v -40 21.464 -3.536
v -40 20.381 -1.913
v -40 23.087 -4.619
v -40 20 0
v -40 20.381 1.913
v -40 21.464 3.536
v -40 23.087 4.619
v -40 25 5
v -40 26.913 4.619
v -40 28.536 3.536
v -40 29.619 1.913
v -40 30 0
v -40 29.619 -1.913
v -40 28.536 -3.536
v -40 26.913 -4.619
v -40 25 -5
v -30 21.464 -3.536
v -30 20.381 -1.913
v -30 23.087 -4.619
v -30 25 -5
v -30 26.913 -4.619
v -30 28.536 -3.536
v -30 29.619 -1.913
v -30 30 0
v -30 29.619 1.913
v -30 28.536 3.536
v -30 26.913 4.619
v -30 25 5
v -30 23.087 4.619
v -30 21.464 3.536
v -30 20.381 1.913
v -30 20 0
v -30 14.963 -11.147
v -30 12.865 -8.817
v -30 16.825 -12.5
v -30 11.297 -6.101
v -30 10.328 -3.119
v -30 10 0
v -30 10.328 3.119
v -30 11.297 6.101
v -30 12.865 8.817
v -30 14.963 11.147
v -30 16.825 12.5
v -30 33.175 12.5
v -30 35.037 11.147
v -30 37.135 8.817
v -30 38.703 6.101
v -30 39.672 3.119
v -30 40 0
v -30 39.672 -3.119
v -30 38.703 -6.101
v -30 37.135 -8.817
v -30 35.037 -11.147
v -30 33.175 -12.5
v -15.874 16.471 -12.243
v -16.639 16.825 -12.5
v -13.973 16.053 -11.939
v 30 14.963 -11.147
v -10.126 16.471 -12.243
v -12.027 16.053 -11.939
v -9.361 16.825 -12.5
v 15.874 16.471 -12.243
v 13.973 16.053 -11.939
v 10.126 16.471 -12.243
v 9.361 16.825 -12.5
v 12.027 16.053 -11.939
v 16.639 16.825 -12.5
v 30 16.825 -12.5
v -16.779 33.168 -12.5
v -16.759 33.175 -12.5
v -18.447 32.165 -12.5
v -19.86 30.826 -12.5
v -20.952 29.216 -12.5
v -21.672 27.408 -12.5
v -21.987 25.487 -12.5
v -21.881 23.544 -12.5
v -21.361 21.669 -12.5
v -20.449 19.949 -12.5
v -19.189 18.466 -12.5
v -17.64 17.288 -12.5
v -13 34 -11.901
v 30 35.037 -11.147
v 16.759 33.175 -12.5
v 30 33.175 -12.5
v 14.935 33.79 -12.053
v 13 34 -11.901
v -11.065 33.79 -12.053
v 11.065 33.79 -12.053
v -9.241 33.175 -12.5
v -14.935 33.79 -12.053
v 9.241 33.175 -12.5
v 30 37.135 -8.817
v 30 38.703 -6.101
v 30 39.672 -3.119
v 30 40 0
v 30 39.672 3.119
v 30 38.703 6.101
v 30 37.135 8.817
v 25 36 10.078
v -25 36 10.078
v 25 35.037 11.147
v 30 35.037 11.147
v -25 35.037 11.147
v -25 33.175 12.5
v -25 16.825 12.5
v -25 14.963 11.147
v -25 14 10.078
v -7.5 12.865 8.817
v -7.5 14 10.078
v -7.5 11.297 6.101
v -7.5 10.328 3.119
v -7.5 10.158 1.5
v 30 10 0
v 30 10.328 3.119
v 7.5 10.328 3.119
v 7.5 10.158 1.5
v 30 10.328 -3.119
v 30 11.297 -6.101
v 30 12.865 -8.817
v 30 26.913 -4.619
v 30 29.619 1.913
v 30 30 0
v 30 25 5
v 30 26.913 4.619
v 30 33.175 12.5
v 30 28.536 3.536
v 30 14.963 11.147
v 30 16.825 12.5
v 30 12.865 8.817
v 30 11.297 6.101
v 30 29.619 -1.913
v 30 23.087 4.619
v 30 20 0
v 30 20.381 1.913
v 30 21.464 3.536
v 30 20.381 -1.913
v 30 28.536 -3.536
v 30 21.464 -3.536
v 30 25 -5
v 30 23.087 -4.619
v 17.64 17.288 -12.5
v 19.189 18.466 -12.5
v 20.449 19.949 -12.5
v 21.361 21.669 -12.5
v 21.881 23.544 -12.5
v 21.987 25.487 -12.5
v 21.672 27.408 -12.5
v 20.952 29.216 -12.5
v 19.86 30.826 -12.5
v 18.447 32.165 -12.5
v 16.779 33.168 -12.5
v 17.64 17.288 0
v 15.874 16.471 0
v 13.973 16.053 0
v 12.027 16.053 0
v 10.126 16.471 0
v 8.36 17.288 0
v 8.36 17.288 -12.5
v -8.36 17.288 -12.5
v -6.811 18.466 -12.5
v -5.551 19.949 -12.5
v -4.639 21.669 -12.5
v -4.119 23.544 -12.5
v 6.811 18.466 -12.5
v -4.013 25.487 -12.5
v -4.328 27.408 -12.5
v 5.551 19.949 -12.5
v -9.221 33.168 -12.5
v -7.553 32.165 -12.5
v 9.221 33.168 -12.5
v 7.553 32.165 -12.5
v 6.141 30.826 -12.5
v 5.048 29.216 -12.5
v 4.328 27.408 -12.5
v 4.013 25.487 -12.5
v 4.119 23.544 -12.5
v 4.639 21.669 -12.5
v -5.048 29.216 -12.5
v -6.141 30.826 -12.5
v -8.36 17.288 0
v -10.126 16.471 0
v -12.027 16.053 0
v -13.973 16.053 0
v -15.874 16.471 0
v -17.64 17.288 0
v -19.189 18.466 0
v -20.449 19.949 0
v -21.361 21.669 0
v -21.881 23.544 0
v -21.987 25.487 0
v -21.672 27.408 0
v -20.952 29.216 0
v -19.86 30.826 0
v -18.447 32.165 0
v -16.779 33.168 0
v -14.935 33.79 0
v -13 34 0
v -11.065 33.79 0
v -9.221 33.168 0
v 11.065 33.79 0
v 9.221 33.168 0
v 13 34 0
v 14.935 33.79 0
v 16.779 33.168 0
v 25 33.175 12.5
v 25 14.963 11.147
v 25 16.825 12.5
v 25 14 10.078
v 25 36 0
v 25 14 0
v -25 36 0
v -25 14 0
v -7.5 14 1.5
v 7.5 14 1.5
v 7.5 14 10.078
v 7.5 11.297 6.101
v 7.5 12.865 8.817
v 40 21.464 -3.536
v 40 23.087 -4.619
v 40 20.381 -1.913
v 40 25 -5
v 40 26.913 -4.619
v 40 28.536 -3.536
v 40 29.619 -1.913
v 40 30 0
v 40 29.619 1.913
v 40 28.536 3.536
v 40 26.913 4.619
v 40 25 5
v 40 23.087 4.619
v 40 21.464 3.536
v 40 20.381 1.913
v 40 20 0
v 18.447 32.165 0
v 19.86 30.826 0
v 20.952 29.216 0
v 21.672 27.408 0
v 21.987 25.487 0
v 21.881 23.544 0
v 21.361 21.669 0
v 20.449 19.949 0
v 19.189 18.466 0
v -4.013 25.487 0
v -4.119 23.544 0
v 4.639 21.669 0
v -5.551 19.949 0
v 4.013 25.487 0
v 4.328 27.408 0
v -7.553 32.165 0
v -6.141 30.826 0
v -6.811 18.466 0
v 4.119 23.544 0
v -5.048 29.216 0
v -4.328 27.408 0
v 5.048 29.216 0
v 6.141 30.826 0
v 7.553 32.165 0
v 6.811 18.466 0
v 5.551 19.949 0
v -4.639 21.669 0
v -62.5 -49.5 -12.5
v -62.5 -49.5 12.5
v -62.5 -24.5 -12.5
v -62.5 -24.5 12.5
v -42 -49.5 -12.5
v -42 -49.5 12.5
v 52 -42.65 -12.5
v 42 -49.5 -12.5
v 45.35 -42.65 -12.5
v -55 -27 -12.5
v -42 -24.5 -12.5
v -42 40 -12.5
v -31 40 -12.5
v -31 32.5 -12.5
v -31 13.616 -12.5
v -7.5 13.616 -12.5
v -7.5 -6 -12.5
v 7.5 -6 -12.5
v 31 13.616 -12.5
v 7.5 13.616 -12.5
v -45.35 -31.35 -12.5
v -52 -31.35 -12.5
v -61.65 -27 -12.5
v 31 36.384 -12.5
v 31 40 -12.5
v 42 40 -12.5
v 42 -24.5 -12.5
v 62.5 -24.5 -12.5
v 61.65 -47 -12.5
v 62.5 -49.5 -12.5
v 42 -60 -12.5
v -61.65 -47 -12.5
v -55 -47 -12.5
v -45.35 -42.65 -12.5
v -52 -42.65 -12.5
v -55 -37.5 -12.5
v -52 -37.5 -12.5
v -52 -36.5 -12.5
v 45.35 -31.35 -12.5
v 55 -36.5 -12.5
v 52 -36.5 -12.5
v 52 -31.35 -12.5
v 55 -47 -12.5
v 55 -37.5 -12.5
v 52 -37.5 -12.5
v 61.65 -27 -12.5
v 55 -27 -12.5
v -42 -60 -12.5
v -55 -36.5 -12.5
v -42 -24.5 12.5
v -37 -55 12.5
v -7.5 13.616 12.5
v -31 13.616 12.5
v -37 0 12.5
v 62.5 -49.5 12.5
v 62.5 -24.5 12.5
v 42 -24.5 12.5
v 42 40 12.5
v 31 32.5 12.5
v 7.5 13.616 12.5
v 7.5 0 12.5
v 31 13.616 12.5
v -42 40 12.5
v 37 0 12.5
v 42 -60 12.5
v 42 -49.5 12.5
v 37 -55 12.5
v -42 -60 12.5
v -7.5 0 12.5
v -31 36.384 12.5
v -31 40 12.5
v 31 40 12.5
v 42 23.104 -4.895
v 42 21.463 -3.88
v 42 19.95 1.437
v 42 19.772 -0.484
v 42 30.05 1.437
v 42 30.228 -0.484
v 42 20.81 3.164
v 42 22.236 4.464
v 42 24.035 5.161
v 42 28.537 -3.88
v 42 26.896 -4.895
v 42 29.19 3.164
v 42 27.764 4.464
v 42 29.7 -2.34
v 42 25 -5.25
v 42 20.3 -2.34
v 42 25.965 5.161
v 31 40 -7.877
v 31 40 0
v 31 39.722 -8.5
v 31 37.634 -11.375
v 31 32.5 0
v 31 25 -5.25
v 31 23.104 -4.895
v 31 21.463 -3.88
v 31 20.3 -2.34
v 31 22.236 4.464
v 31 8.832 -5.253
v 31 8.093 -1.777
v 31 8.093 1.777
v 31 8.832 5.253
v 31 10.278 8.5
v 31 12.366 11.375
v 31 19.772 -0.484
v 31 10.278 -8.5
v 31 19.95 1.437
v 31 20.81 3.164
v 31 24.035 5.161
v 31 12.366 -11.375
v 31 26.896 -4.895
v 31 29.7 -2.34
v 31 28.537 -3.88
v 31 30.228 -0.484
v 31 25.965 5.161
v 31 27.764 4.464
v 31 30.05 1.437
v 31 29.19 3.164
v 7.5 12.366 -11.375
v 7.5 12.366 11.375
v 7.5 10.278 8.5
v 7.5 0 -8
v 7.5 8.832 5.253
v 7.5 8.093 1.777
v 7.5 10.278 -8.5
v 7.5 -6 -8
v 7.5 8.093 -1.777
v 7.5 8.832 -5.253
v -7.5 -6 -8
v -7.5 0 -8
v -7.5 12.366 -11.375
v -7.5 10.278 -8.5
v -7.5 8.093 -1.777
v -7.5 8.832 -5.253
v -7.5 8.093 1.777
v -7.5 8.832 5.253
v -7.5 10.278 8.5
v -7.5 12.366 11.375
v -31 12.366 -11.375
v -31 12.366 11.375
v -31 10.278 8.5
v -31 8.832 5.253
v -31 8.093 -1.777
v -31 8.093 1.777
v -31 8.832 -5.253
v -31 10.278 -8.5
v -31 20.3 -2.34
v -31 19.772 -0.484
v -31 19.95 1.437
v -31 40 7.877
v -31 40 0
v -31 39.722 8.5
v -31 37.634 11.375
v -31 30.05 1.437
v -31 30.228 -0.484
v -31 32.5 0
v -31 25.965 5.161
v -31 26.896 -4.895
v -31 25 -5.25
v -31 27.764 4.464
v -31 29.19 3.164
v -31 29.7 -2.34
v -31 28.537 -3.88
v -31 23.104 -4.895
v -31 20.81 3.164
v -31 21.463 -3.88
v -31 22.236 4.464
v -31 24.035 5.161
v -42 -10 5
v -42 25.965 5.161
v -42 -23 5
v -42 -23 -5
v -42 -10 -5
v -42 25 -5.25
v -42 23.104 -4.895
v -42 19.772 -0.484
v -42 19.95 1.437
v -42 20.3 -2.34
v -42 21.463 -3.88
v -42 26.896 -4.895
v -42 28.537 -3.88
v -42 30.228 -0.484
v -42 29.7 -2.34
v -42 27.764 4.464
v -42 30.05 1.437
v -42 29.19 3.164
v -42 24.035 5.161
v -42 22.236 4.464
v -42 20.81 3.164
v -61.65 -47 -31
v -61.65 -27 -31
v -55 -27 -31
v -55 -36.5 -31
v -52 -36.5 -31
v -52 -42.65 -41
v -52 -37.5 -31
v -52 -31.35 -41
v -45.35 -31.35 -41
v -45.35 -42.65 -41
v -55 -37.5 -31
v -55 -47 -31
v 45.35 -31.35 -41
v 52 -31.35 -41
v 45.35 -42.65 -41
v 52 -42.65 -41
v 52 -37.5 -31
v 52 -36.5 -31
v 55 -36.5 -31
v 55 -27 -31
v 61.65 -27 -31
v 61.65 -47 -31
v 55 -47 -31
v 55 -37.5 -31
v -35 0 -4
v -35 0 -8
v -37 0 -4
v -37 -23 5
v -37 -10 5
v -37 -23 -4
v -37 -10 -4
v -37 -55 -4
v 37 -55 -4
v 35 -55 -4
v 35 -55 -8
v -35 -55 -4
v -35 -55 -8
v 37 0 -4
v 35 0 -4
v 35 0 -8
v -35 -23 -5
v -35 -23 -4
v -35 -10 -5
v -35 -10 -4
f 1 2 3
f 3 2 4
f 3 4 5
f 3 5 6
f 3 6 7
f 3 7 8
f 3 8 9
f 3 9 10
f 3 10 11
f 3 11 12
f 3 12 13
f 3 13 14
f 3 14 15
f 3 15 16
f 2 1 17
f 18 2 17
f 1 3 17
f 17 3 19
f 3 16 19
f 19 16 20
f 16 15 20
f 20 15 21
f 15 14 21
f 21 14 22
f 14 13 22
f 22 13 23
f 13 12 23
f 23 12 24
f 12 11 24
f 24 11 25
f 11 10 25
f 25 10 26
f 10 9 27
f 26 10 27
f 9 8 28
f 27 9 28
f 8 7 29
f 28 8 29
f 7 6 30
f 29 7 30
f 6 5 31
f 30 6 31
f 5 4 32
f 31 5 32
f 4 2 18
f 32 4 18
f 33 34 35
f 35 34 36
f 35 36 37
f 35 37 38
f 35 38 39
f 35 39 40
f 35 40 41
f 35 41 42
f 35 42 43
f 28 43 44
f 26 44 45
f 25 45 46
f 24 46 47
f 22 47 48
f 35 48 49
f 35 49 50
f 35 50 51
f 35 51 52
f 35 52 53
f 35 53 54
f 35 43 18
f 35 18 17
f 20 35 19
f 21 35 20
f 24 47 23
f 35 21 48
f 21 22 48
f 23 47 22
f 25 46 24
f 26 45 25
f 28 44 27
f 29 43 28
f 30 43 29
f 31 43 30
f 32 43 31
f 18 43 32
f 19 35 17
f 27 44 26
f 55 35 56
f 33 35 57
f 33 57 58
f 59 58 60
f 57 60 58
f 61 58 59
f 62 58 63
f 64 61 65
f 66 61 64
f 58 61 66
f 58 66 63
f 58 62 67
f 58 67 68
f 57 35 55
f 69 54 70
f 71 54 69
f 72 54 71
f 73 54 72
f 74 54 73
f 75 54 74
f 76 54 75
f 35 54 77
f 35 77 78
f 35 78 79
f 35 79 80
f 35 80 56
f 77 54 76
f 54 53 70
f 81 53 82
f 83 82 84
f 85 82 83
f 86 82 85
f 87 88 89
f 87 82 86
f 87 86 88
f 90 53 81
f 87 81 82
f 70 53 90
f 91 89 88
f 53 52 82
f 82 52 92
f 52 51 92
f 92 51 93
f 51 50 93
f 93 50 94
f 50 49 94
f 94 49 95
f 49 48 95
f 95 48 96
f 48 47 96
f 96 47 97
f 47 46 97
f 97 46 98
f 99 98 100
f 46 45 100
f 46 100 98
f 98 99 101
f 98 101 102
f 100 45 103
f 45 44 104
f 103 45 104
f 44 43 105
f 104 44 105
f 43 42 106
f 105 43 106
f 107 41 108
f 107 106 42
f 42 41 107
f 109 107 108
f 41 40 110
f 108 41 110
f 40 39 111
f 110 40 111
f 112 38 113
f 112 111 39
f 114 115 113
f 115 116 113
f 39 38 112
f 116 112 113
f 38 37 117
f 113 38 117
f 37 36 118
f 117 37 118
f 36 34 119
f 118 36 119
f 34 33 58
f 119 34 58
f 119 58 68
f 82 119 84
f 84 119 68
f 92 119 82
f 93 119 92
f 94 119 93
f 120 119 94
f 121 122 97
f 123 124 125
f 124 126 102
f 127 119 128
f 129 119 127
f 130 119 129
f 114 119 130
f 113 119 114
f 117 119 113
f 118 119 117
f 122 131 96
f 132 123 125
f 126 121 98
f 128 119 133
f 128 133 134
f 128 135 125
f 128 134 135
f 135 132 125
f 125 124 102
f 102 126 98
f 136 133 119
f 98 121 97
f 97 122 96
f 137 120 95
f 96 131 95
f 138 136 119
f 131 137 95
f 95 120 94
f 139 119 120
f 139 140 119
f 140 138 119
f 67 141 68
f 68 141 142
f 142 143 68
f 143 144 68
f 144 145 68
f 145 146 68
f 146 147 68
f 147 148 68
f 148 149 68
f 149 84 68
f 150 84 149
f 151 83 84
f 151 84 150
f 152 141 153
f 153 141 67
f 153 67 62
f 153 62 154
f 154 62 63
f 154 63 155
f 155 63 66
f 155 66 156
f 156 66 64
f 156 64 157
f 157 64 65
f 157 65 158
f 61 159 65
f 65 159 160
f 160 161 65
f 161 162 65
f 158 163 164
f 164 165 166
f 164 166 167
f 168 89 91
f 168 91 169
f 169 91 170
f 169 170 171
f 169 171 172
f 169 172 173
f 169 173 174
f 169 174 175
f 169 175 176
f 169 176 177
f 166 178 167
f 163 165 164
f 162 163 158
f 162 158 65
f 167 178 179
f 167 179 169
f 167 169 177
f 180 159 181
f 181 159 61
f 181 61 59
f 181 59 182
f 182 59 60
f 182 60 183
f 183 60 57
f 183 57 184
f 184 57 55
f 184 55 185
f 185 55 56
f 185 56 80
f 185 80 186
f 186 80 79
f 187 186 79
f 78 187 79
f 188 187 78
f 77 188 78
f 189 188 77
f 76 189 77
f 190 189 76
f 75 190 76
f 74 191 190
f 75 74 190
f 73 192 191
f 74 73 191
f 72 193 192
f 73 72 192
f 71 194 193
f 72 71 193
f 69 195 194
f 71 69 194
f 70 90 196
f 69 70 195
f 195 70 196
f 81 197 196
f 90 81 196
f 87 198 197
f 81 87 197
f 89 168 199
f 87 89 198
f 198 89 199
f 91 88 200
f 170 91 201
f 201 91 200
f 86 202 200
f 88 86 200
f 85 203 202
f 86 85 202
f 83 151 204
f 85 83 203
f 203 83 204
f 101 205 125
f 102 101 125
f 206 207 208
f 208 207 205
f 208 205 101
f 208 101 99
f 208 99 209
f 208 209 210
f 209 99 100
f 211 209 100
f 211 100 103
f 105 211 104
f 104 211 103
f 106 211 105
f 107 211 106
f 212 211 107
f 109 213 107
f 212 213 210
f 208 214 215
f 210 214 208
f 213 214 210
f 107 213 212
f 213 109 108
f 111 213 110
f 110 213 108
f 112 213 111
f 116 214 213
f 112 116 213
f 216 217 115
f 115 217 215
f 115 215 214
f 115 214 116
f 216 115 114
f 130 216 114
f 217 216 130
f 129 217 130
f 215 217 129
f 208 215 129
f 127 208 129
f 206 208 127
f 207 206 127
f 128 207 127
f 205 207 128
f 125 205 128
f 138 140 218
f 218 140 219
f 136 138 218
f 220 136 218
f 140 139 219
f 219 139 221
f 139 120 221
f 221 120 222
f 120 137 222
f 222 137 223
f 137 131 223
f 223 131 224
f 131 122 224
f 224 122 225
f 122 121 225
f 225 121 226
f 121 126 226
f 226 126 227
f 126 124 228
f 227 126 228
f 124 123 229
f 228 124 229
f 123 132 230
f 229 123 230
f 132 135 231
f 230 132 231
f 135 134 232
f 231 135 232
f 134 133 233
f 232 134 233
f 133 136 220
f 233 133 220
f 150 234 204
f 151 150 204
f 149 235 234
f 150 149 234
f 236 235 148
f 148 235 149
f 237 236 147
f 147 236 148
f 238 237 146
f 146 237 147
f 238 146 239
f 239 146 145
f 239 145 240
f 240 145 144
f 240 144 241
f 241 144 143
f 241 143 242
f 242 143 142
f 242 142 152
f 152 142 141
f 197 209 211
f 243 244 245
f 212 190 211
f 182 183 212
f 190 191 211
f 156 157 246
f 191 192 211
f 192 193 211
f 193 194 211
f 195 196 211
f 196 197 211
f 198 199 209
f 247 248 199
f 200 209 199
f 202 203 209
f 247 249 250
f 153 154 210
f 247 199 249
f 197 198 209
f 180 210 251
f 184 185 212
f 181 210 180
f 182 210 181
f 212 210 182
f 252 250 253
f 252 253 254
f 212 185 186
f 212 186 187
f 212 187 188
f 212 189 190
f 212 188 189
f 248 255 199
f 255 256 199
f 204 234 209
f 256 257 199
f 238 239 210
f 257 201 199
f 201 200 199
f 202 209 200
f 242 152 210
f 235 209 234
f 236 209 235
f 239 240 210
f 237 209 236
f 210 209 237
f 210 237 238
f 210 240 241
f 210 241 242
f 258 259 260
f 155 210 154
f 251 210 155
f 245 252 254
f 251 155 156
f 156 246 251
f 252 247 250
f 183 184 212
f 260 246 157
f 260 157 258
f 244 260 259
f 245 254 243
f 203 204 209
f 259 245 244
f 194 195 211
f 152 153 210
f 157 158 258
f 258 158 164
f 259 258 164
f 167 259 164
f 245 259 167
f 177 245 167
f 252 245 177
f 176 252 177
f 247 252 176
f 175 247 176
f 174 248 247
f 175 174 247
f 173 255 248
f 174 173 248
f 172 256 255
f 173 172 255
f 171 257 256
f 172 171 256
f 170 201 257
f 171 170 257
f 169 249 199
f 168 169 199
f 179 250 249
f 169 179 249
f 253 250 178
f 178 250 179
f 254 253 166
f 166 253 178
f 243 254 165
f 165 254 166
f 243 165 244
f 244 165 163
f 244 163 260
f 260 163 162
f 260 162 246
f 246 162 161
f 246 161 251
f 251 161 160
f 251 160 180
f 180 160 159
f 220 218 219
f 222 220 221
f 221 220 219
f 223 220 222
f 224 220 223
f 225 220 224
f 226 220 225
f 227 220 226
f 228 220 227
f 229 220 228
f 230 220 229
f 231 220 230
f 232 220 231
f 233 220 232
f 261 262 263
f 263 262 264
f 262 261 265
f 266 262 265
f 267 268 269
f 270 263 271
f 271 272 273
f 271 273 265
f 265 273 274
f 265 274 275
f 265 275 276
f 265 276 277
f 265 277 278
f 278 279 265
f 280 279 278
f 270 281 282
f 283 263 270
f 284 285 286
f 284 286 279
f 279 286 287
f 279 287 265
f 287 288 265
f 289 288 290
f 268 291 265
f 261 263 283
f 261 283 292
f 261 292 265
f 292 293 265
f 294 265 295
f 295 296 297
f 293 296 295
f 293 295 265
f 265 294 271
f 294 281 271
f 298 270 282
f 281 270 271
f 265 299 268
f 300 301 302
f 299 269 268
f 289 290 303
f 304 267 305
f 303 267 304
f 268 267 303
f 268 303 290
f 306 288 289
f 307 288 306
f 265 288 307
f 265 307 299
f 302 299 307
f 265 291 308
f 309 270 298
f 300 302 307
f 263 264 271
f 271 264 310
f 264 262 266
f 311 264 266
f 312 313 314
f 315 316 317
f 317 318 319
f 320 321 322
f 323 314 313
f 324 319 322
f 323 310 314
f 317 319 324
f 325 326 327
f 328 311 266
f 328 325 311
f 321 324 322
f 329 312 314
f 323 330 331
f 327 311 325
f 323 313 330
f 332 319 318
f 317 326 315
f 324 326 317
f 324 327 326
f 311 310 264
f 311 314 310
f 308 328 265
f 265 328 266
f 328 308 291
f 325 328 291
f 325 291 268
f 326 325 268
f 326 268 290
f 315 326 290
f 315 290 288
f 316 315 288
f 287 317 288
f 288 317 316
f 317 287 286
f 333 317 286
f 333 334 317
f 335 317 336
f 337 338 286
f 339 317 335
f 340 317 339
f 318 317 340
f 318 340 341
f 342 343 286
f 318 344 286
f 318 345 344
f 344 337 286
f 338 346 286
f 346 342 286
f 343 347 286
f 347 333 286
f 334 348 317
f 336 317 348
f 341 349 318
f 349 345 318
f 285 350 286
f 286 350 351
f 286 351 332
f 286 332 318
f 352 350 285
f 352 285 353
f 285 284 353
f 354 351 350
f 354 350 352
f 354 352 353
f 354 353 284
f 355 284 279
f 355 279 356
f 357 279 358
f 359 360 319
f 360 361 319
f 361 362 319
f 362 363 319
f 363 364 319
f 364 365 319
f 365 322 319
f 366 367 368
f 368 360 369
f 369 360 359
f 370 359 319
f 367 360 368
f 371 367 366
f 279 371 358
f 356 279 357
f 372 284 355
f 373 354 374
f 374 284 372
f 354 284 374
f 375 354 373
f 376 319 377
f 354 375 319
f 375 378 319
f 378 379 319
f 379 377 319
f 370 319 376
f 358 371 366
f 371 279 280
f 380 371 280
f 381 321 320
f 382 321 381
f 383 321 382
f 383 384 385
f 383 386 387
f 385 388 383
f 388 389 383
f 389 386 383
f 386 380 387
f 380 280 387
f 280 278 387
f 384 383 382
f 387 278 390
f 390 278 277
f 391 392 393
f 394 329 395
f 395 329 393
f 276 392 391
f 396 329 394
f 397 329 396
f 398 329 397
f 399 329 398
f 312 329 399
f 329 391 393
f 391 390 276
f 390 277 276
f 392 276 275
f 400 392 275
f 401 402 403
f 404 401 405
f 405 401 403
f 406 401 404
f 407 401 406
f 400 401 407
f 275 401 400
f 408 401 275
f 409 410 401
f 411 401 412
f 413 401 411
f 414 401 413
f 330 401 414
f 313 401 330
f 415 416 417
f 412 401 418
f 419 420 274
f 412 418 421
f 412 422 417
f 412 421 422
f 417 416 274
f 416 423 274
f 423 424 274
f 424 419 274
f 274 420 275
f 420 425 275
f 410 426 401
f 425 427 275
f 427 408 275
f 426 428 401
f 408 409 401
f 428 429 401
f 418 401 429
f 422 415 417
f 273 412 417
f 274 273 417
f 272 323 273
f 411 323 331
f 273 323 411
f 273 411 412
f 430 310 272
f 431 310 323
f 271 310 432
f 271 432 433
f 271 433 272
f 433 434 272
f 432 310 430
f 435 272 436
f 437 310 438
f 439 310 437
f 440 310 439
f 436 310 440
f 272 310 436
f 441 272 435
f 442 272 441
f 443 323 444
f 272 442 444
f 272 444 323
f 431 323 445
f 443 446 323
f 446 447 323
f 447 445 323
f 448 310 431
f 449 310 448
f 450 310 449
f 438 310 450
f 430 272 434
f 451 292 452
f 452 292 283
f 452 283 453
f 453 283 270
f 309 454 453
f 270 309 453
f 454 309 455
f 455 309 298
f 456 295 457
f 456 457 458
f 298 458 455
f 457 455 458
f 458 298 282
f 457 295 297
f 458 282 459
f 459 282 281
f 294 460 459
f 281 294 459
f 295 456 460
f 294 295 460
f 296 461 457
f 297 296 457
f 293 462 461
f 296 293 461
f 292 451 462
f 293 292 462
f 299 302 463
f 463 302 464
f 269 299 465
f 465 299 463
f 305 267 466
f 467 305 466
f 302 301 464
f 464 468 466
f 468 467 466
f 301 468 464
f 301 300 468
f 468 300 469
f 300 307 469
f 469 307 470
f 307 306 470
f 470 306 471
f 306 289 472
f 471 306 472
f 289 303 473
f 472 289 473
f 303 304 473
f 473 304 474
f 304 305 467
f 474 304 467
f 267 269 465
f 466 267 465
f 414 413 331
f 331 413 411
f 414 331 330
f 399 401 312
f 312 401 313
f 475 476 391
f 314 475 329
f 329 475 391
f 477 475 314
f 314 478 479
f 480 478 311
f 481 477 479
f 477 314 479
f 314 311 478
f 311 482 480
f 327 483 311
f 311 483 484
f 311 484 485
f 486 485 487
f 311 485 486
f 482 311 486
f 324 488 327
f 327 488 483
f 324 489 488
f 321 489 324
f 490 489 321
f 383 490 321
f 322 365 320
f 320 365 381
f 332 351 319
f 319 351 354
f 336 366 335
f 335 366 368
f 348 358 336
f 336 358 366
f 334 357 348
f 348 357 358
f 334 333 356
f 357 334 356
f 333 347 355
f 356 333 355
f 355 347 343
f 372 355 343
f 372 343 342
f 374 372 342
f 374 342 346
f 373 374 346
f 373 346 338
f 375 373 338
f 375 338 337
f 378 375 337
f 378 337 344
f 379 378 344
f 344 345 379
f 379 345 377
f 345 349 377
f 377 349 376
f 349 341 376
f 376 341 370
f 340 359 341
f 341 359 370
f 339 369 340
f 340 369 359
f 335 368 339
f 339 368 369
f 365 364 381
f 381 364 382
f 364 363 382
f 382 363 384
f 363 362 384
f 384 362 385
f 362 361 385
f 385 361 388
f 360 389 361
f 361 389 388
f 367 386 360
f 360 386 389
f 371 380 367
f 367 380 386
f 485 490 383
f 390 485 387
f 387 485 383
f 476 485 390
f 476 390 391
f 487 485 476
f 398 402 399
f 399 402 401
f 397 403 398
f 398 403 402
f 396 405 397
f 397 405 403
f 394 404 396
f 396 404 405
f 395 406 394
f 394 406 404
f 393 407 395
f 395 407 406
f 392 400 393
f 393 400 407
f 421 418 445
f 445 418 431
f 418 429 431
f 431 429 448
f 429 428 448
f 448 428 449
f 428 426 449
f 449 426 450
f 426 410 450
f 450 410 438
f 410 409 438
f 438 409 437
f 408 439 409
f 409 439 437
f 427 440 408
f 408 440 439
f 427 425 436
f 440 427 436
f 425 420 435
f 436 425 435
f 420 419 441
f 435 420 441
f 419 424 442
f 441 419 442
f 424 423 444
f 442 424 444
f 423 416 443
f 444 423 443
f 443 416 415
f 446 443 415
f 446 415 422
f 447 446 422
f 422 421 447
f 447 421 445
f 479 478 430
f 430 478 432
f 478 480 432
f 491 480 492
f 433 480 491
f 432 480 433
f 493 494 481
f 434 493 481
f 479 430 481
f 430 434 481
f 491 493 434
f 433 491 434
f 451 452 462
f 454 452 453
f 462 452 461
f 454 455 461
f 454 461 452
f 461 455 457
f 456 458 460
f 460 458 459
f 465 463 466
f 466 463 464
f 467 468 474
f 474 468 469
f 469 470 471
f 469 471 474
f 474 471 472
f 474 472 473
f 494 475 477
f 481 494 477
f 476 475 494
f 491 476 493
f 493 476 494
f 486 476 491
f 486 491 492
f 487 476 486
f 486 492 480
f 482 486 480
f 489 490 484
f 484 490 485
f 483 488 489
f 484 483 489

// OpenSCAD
module pingHousing() 
{
	intersection() {
		cube([35, 25, 82], true);
		difference() {
			union() 
			{
				cylinder(60, 15, 15, true);
				cylinder(80, 5, 5, true);
			}
			translate([0, -15, 0]) 
			{
				cube([22, 30, 50], true); //main cavity
			}
			translate([-15, -9, 0]) 
			{
				cube(15, true); //wire hole
			}
			//can holes
			translate([0, 8, 13])
			{
				rotate([90, 0, 0]) cylinder(17, 9, 9, true);
			}
			translate([0, 8, -13])
			{
				rotate([90, 0, 0]) cylinder(17, 9, 9, true);
			}
		}
	}
}

module fingers(h) 
{
	t = 6.65;
	w = 3;
	translate([w/2,-5.65,0]) cube([t, 11.30, h+10], false);
	translate([-(t+w/2),-10,0]) cube([t, 20, h], false);
	translate([-(w+1)/2,-0.5,0]) cube([w+1, 1, h], false);
}


module trackArm() 
{	
	cube([125, 25, 25], true);
	translate([53.5, 0, -11]) rotate([0, 180, 0]) fingers(20);
	translate([-53.5, 0, -11]) rotate([180, 0, 0]) fingers(20);
}
	
module sensorBody()
{
	difference() {
		union() {
			// main volume	
			translate([0, -10, 0]) cube([84, 100, 25], true);
			// track mount arms
			translate([0, -37, 0]) trackArm();
		}
		// main cavity
		translate([-37, -55, -4]) cube([74, 55, 17], false);
		// board recess
		translate([-35, -55, -8]) cube([70, 55, 5], false);
		// USB port hole
		translate([-45, -23, -5]) cube([12, 13, 10], false);
		// accelero recess
		//translate([0, -28, -5]) cube([19, 19, 6], false);
		// wire clearance
		translate([0, 4, 0]) cube([15, 20, 26], true);
		//  big cylinder
		rotate([0, 90, 0]) translate([0,25,0]) cylinder(62, 17, 17, true);
		// trim off unecessary stuff that won't print well
		translate([0,40,0]) cube([62, 15, 26], true);
		// axle hole
		rotate([0, 90, 0]) translate([0,25,0]) cylinder(95, 5.25, 5.25, true);
		}
}

module FredBotAssumbly() 
{
	translate([0,25,0]) rotate([-90, 0, 90]) pingHousing();
	sensorBody();
}

FredBotAssumbly();
//trackArm();
